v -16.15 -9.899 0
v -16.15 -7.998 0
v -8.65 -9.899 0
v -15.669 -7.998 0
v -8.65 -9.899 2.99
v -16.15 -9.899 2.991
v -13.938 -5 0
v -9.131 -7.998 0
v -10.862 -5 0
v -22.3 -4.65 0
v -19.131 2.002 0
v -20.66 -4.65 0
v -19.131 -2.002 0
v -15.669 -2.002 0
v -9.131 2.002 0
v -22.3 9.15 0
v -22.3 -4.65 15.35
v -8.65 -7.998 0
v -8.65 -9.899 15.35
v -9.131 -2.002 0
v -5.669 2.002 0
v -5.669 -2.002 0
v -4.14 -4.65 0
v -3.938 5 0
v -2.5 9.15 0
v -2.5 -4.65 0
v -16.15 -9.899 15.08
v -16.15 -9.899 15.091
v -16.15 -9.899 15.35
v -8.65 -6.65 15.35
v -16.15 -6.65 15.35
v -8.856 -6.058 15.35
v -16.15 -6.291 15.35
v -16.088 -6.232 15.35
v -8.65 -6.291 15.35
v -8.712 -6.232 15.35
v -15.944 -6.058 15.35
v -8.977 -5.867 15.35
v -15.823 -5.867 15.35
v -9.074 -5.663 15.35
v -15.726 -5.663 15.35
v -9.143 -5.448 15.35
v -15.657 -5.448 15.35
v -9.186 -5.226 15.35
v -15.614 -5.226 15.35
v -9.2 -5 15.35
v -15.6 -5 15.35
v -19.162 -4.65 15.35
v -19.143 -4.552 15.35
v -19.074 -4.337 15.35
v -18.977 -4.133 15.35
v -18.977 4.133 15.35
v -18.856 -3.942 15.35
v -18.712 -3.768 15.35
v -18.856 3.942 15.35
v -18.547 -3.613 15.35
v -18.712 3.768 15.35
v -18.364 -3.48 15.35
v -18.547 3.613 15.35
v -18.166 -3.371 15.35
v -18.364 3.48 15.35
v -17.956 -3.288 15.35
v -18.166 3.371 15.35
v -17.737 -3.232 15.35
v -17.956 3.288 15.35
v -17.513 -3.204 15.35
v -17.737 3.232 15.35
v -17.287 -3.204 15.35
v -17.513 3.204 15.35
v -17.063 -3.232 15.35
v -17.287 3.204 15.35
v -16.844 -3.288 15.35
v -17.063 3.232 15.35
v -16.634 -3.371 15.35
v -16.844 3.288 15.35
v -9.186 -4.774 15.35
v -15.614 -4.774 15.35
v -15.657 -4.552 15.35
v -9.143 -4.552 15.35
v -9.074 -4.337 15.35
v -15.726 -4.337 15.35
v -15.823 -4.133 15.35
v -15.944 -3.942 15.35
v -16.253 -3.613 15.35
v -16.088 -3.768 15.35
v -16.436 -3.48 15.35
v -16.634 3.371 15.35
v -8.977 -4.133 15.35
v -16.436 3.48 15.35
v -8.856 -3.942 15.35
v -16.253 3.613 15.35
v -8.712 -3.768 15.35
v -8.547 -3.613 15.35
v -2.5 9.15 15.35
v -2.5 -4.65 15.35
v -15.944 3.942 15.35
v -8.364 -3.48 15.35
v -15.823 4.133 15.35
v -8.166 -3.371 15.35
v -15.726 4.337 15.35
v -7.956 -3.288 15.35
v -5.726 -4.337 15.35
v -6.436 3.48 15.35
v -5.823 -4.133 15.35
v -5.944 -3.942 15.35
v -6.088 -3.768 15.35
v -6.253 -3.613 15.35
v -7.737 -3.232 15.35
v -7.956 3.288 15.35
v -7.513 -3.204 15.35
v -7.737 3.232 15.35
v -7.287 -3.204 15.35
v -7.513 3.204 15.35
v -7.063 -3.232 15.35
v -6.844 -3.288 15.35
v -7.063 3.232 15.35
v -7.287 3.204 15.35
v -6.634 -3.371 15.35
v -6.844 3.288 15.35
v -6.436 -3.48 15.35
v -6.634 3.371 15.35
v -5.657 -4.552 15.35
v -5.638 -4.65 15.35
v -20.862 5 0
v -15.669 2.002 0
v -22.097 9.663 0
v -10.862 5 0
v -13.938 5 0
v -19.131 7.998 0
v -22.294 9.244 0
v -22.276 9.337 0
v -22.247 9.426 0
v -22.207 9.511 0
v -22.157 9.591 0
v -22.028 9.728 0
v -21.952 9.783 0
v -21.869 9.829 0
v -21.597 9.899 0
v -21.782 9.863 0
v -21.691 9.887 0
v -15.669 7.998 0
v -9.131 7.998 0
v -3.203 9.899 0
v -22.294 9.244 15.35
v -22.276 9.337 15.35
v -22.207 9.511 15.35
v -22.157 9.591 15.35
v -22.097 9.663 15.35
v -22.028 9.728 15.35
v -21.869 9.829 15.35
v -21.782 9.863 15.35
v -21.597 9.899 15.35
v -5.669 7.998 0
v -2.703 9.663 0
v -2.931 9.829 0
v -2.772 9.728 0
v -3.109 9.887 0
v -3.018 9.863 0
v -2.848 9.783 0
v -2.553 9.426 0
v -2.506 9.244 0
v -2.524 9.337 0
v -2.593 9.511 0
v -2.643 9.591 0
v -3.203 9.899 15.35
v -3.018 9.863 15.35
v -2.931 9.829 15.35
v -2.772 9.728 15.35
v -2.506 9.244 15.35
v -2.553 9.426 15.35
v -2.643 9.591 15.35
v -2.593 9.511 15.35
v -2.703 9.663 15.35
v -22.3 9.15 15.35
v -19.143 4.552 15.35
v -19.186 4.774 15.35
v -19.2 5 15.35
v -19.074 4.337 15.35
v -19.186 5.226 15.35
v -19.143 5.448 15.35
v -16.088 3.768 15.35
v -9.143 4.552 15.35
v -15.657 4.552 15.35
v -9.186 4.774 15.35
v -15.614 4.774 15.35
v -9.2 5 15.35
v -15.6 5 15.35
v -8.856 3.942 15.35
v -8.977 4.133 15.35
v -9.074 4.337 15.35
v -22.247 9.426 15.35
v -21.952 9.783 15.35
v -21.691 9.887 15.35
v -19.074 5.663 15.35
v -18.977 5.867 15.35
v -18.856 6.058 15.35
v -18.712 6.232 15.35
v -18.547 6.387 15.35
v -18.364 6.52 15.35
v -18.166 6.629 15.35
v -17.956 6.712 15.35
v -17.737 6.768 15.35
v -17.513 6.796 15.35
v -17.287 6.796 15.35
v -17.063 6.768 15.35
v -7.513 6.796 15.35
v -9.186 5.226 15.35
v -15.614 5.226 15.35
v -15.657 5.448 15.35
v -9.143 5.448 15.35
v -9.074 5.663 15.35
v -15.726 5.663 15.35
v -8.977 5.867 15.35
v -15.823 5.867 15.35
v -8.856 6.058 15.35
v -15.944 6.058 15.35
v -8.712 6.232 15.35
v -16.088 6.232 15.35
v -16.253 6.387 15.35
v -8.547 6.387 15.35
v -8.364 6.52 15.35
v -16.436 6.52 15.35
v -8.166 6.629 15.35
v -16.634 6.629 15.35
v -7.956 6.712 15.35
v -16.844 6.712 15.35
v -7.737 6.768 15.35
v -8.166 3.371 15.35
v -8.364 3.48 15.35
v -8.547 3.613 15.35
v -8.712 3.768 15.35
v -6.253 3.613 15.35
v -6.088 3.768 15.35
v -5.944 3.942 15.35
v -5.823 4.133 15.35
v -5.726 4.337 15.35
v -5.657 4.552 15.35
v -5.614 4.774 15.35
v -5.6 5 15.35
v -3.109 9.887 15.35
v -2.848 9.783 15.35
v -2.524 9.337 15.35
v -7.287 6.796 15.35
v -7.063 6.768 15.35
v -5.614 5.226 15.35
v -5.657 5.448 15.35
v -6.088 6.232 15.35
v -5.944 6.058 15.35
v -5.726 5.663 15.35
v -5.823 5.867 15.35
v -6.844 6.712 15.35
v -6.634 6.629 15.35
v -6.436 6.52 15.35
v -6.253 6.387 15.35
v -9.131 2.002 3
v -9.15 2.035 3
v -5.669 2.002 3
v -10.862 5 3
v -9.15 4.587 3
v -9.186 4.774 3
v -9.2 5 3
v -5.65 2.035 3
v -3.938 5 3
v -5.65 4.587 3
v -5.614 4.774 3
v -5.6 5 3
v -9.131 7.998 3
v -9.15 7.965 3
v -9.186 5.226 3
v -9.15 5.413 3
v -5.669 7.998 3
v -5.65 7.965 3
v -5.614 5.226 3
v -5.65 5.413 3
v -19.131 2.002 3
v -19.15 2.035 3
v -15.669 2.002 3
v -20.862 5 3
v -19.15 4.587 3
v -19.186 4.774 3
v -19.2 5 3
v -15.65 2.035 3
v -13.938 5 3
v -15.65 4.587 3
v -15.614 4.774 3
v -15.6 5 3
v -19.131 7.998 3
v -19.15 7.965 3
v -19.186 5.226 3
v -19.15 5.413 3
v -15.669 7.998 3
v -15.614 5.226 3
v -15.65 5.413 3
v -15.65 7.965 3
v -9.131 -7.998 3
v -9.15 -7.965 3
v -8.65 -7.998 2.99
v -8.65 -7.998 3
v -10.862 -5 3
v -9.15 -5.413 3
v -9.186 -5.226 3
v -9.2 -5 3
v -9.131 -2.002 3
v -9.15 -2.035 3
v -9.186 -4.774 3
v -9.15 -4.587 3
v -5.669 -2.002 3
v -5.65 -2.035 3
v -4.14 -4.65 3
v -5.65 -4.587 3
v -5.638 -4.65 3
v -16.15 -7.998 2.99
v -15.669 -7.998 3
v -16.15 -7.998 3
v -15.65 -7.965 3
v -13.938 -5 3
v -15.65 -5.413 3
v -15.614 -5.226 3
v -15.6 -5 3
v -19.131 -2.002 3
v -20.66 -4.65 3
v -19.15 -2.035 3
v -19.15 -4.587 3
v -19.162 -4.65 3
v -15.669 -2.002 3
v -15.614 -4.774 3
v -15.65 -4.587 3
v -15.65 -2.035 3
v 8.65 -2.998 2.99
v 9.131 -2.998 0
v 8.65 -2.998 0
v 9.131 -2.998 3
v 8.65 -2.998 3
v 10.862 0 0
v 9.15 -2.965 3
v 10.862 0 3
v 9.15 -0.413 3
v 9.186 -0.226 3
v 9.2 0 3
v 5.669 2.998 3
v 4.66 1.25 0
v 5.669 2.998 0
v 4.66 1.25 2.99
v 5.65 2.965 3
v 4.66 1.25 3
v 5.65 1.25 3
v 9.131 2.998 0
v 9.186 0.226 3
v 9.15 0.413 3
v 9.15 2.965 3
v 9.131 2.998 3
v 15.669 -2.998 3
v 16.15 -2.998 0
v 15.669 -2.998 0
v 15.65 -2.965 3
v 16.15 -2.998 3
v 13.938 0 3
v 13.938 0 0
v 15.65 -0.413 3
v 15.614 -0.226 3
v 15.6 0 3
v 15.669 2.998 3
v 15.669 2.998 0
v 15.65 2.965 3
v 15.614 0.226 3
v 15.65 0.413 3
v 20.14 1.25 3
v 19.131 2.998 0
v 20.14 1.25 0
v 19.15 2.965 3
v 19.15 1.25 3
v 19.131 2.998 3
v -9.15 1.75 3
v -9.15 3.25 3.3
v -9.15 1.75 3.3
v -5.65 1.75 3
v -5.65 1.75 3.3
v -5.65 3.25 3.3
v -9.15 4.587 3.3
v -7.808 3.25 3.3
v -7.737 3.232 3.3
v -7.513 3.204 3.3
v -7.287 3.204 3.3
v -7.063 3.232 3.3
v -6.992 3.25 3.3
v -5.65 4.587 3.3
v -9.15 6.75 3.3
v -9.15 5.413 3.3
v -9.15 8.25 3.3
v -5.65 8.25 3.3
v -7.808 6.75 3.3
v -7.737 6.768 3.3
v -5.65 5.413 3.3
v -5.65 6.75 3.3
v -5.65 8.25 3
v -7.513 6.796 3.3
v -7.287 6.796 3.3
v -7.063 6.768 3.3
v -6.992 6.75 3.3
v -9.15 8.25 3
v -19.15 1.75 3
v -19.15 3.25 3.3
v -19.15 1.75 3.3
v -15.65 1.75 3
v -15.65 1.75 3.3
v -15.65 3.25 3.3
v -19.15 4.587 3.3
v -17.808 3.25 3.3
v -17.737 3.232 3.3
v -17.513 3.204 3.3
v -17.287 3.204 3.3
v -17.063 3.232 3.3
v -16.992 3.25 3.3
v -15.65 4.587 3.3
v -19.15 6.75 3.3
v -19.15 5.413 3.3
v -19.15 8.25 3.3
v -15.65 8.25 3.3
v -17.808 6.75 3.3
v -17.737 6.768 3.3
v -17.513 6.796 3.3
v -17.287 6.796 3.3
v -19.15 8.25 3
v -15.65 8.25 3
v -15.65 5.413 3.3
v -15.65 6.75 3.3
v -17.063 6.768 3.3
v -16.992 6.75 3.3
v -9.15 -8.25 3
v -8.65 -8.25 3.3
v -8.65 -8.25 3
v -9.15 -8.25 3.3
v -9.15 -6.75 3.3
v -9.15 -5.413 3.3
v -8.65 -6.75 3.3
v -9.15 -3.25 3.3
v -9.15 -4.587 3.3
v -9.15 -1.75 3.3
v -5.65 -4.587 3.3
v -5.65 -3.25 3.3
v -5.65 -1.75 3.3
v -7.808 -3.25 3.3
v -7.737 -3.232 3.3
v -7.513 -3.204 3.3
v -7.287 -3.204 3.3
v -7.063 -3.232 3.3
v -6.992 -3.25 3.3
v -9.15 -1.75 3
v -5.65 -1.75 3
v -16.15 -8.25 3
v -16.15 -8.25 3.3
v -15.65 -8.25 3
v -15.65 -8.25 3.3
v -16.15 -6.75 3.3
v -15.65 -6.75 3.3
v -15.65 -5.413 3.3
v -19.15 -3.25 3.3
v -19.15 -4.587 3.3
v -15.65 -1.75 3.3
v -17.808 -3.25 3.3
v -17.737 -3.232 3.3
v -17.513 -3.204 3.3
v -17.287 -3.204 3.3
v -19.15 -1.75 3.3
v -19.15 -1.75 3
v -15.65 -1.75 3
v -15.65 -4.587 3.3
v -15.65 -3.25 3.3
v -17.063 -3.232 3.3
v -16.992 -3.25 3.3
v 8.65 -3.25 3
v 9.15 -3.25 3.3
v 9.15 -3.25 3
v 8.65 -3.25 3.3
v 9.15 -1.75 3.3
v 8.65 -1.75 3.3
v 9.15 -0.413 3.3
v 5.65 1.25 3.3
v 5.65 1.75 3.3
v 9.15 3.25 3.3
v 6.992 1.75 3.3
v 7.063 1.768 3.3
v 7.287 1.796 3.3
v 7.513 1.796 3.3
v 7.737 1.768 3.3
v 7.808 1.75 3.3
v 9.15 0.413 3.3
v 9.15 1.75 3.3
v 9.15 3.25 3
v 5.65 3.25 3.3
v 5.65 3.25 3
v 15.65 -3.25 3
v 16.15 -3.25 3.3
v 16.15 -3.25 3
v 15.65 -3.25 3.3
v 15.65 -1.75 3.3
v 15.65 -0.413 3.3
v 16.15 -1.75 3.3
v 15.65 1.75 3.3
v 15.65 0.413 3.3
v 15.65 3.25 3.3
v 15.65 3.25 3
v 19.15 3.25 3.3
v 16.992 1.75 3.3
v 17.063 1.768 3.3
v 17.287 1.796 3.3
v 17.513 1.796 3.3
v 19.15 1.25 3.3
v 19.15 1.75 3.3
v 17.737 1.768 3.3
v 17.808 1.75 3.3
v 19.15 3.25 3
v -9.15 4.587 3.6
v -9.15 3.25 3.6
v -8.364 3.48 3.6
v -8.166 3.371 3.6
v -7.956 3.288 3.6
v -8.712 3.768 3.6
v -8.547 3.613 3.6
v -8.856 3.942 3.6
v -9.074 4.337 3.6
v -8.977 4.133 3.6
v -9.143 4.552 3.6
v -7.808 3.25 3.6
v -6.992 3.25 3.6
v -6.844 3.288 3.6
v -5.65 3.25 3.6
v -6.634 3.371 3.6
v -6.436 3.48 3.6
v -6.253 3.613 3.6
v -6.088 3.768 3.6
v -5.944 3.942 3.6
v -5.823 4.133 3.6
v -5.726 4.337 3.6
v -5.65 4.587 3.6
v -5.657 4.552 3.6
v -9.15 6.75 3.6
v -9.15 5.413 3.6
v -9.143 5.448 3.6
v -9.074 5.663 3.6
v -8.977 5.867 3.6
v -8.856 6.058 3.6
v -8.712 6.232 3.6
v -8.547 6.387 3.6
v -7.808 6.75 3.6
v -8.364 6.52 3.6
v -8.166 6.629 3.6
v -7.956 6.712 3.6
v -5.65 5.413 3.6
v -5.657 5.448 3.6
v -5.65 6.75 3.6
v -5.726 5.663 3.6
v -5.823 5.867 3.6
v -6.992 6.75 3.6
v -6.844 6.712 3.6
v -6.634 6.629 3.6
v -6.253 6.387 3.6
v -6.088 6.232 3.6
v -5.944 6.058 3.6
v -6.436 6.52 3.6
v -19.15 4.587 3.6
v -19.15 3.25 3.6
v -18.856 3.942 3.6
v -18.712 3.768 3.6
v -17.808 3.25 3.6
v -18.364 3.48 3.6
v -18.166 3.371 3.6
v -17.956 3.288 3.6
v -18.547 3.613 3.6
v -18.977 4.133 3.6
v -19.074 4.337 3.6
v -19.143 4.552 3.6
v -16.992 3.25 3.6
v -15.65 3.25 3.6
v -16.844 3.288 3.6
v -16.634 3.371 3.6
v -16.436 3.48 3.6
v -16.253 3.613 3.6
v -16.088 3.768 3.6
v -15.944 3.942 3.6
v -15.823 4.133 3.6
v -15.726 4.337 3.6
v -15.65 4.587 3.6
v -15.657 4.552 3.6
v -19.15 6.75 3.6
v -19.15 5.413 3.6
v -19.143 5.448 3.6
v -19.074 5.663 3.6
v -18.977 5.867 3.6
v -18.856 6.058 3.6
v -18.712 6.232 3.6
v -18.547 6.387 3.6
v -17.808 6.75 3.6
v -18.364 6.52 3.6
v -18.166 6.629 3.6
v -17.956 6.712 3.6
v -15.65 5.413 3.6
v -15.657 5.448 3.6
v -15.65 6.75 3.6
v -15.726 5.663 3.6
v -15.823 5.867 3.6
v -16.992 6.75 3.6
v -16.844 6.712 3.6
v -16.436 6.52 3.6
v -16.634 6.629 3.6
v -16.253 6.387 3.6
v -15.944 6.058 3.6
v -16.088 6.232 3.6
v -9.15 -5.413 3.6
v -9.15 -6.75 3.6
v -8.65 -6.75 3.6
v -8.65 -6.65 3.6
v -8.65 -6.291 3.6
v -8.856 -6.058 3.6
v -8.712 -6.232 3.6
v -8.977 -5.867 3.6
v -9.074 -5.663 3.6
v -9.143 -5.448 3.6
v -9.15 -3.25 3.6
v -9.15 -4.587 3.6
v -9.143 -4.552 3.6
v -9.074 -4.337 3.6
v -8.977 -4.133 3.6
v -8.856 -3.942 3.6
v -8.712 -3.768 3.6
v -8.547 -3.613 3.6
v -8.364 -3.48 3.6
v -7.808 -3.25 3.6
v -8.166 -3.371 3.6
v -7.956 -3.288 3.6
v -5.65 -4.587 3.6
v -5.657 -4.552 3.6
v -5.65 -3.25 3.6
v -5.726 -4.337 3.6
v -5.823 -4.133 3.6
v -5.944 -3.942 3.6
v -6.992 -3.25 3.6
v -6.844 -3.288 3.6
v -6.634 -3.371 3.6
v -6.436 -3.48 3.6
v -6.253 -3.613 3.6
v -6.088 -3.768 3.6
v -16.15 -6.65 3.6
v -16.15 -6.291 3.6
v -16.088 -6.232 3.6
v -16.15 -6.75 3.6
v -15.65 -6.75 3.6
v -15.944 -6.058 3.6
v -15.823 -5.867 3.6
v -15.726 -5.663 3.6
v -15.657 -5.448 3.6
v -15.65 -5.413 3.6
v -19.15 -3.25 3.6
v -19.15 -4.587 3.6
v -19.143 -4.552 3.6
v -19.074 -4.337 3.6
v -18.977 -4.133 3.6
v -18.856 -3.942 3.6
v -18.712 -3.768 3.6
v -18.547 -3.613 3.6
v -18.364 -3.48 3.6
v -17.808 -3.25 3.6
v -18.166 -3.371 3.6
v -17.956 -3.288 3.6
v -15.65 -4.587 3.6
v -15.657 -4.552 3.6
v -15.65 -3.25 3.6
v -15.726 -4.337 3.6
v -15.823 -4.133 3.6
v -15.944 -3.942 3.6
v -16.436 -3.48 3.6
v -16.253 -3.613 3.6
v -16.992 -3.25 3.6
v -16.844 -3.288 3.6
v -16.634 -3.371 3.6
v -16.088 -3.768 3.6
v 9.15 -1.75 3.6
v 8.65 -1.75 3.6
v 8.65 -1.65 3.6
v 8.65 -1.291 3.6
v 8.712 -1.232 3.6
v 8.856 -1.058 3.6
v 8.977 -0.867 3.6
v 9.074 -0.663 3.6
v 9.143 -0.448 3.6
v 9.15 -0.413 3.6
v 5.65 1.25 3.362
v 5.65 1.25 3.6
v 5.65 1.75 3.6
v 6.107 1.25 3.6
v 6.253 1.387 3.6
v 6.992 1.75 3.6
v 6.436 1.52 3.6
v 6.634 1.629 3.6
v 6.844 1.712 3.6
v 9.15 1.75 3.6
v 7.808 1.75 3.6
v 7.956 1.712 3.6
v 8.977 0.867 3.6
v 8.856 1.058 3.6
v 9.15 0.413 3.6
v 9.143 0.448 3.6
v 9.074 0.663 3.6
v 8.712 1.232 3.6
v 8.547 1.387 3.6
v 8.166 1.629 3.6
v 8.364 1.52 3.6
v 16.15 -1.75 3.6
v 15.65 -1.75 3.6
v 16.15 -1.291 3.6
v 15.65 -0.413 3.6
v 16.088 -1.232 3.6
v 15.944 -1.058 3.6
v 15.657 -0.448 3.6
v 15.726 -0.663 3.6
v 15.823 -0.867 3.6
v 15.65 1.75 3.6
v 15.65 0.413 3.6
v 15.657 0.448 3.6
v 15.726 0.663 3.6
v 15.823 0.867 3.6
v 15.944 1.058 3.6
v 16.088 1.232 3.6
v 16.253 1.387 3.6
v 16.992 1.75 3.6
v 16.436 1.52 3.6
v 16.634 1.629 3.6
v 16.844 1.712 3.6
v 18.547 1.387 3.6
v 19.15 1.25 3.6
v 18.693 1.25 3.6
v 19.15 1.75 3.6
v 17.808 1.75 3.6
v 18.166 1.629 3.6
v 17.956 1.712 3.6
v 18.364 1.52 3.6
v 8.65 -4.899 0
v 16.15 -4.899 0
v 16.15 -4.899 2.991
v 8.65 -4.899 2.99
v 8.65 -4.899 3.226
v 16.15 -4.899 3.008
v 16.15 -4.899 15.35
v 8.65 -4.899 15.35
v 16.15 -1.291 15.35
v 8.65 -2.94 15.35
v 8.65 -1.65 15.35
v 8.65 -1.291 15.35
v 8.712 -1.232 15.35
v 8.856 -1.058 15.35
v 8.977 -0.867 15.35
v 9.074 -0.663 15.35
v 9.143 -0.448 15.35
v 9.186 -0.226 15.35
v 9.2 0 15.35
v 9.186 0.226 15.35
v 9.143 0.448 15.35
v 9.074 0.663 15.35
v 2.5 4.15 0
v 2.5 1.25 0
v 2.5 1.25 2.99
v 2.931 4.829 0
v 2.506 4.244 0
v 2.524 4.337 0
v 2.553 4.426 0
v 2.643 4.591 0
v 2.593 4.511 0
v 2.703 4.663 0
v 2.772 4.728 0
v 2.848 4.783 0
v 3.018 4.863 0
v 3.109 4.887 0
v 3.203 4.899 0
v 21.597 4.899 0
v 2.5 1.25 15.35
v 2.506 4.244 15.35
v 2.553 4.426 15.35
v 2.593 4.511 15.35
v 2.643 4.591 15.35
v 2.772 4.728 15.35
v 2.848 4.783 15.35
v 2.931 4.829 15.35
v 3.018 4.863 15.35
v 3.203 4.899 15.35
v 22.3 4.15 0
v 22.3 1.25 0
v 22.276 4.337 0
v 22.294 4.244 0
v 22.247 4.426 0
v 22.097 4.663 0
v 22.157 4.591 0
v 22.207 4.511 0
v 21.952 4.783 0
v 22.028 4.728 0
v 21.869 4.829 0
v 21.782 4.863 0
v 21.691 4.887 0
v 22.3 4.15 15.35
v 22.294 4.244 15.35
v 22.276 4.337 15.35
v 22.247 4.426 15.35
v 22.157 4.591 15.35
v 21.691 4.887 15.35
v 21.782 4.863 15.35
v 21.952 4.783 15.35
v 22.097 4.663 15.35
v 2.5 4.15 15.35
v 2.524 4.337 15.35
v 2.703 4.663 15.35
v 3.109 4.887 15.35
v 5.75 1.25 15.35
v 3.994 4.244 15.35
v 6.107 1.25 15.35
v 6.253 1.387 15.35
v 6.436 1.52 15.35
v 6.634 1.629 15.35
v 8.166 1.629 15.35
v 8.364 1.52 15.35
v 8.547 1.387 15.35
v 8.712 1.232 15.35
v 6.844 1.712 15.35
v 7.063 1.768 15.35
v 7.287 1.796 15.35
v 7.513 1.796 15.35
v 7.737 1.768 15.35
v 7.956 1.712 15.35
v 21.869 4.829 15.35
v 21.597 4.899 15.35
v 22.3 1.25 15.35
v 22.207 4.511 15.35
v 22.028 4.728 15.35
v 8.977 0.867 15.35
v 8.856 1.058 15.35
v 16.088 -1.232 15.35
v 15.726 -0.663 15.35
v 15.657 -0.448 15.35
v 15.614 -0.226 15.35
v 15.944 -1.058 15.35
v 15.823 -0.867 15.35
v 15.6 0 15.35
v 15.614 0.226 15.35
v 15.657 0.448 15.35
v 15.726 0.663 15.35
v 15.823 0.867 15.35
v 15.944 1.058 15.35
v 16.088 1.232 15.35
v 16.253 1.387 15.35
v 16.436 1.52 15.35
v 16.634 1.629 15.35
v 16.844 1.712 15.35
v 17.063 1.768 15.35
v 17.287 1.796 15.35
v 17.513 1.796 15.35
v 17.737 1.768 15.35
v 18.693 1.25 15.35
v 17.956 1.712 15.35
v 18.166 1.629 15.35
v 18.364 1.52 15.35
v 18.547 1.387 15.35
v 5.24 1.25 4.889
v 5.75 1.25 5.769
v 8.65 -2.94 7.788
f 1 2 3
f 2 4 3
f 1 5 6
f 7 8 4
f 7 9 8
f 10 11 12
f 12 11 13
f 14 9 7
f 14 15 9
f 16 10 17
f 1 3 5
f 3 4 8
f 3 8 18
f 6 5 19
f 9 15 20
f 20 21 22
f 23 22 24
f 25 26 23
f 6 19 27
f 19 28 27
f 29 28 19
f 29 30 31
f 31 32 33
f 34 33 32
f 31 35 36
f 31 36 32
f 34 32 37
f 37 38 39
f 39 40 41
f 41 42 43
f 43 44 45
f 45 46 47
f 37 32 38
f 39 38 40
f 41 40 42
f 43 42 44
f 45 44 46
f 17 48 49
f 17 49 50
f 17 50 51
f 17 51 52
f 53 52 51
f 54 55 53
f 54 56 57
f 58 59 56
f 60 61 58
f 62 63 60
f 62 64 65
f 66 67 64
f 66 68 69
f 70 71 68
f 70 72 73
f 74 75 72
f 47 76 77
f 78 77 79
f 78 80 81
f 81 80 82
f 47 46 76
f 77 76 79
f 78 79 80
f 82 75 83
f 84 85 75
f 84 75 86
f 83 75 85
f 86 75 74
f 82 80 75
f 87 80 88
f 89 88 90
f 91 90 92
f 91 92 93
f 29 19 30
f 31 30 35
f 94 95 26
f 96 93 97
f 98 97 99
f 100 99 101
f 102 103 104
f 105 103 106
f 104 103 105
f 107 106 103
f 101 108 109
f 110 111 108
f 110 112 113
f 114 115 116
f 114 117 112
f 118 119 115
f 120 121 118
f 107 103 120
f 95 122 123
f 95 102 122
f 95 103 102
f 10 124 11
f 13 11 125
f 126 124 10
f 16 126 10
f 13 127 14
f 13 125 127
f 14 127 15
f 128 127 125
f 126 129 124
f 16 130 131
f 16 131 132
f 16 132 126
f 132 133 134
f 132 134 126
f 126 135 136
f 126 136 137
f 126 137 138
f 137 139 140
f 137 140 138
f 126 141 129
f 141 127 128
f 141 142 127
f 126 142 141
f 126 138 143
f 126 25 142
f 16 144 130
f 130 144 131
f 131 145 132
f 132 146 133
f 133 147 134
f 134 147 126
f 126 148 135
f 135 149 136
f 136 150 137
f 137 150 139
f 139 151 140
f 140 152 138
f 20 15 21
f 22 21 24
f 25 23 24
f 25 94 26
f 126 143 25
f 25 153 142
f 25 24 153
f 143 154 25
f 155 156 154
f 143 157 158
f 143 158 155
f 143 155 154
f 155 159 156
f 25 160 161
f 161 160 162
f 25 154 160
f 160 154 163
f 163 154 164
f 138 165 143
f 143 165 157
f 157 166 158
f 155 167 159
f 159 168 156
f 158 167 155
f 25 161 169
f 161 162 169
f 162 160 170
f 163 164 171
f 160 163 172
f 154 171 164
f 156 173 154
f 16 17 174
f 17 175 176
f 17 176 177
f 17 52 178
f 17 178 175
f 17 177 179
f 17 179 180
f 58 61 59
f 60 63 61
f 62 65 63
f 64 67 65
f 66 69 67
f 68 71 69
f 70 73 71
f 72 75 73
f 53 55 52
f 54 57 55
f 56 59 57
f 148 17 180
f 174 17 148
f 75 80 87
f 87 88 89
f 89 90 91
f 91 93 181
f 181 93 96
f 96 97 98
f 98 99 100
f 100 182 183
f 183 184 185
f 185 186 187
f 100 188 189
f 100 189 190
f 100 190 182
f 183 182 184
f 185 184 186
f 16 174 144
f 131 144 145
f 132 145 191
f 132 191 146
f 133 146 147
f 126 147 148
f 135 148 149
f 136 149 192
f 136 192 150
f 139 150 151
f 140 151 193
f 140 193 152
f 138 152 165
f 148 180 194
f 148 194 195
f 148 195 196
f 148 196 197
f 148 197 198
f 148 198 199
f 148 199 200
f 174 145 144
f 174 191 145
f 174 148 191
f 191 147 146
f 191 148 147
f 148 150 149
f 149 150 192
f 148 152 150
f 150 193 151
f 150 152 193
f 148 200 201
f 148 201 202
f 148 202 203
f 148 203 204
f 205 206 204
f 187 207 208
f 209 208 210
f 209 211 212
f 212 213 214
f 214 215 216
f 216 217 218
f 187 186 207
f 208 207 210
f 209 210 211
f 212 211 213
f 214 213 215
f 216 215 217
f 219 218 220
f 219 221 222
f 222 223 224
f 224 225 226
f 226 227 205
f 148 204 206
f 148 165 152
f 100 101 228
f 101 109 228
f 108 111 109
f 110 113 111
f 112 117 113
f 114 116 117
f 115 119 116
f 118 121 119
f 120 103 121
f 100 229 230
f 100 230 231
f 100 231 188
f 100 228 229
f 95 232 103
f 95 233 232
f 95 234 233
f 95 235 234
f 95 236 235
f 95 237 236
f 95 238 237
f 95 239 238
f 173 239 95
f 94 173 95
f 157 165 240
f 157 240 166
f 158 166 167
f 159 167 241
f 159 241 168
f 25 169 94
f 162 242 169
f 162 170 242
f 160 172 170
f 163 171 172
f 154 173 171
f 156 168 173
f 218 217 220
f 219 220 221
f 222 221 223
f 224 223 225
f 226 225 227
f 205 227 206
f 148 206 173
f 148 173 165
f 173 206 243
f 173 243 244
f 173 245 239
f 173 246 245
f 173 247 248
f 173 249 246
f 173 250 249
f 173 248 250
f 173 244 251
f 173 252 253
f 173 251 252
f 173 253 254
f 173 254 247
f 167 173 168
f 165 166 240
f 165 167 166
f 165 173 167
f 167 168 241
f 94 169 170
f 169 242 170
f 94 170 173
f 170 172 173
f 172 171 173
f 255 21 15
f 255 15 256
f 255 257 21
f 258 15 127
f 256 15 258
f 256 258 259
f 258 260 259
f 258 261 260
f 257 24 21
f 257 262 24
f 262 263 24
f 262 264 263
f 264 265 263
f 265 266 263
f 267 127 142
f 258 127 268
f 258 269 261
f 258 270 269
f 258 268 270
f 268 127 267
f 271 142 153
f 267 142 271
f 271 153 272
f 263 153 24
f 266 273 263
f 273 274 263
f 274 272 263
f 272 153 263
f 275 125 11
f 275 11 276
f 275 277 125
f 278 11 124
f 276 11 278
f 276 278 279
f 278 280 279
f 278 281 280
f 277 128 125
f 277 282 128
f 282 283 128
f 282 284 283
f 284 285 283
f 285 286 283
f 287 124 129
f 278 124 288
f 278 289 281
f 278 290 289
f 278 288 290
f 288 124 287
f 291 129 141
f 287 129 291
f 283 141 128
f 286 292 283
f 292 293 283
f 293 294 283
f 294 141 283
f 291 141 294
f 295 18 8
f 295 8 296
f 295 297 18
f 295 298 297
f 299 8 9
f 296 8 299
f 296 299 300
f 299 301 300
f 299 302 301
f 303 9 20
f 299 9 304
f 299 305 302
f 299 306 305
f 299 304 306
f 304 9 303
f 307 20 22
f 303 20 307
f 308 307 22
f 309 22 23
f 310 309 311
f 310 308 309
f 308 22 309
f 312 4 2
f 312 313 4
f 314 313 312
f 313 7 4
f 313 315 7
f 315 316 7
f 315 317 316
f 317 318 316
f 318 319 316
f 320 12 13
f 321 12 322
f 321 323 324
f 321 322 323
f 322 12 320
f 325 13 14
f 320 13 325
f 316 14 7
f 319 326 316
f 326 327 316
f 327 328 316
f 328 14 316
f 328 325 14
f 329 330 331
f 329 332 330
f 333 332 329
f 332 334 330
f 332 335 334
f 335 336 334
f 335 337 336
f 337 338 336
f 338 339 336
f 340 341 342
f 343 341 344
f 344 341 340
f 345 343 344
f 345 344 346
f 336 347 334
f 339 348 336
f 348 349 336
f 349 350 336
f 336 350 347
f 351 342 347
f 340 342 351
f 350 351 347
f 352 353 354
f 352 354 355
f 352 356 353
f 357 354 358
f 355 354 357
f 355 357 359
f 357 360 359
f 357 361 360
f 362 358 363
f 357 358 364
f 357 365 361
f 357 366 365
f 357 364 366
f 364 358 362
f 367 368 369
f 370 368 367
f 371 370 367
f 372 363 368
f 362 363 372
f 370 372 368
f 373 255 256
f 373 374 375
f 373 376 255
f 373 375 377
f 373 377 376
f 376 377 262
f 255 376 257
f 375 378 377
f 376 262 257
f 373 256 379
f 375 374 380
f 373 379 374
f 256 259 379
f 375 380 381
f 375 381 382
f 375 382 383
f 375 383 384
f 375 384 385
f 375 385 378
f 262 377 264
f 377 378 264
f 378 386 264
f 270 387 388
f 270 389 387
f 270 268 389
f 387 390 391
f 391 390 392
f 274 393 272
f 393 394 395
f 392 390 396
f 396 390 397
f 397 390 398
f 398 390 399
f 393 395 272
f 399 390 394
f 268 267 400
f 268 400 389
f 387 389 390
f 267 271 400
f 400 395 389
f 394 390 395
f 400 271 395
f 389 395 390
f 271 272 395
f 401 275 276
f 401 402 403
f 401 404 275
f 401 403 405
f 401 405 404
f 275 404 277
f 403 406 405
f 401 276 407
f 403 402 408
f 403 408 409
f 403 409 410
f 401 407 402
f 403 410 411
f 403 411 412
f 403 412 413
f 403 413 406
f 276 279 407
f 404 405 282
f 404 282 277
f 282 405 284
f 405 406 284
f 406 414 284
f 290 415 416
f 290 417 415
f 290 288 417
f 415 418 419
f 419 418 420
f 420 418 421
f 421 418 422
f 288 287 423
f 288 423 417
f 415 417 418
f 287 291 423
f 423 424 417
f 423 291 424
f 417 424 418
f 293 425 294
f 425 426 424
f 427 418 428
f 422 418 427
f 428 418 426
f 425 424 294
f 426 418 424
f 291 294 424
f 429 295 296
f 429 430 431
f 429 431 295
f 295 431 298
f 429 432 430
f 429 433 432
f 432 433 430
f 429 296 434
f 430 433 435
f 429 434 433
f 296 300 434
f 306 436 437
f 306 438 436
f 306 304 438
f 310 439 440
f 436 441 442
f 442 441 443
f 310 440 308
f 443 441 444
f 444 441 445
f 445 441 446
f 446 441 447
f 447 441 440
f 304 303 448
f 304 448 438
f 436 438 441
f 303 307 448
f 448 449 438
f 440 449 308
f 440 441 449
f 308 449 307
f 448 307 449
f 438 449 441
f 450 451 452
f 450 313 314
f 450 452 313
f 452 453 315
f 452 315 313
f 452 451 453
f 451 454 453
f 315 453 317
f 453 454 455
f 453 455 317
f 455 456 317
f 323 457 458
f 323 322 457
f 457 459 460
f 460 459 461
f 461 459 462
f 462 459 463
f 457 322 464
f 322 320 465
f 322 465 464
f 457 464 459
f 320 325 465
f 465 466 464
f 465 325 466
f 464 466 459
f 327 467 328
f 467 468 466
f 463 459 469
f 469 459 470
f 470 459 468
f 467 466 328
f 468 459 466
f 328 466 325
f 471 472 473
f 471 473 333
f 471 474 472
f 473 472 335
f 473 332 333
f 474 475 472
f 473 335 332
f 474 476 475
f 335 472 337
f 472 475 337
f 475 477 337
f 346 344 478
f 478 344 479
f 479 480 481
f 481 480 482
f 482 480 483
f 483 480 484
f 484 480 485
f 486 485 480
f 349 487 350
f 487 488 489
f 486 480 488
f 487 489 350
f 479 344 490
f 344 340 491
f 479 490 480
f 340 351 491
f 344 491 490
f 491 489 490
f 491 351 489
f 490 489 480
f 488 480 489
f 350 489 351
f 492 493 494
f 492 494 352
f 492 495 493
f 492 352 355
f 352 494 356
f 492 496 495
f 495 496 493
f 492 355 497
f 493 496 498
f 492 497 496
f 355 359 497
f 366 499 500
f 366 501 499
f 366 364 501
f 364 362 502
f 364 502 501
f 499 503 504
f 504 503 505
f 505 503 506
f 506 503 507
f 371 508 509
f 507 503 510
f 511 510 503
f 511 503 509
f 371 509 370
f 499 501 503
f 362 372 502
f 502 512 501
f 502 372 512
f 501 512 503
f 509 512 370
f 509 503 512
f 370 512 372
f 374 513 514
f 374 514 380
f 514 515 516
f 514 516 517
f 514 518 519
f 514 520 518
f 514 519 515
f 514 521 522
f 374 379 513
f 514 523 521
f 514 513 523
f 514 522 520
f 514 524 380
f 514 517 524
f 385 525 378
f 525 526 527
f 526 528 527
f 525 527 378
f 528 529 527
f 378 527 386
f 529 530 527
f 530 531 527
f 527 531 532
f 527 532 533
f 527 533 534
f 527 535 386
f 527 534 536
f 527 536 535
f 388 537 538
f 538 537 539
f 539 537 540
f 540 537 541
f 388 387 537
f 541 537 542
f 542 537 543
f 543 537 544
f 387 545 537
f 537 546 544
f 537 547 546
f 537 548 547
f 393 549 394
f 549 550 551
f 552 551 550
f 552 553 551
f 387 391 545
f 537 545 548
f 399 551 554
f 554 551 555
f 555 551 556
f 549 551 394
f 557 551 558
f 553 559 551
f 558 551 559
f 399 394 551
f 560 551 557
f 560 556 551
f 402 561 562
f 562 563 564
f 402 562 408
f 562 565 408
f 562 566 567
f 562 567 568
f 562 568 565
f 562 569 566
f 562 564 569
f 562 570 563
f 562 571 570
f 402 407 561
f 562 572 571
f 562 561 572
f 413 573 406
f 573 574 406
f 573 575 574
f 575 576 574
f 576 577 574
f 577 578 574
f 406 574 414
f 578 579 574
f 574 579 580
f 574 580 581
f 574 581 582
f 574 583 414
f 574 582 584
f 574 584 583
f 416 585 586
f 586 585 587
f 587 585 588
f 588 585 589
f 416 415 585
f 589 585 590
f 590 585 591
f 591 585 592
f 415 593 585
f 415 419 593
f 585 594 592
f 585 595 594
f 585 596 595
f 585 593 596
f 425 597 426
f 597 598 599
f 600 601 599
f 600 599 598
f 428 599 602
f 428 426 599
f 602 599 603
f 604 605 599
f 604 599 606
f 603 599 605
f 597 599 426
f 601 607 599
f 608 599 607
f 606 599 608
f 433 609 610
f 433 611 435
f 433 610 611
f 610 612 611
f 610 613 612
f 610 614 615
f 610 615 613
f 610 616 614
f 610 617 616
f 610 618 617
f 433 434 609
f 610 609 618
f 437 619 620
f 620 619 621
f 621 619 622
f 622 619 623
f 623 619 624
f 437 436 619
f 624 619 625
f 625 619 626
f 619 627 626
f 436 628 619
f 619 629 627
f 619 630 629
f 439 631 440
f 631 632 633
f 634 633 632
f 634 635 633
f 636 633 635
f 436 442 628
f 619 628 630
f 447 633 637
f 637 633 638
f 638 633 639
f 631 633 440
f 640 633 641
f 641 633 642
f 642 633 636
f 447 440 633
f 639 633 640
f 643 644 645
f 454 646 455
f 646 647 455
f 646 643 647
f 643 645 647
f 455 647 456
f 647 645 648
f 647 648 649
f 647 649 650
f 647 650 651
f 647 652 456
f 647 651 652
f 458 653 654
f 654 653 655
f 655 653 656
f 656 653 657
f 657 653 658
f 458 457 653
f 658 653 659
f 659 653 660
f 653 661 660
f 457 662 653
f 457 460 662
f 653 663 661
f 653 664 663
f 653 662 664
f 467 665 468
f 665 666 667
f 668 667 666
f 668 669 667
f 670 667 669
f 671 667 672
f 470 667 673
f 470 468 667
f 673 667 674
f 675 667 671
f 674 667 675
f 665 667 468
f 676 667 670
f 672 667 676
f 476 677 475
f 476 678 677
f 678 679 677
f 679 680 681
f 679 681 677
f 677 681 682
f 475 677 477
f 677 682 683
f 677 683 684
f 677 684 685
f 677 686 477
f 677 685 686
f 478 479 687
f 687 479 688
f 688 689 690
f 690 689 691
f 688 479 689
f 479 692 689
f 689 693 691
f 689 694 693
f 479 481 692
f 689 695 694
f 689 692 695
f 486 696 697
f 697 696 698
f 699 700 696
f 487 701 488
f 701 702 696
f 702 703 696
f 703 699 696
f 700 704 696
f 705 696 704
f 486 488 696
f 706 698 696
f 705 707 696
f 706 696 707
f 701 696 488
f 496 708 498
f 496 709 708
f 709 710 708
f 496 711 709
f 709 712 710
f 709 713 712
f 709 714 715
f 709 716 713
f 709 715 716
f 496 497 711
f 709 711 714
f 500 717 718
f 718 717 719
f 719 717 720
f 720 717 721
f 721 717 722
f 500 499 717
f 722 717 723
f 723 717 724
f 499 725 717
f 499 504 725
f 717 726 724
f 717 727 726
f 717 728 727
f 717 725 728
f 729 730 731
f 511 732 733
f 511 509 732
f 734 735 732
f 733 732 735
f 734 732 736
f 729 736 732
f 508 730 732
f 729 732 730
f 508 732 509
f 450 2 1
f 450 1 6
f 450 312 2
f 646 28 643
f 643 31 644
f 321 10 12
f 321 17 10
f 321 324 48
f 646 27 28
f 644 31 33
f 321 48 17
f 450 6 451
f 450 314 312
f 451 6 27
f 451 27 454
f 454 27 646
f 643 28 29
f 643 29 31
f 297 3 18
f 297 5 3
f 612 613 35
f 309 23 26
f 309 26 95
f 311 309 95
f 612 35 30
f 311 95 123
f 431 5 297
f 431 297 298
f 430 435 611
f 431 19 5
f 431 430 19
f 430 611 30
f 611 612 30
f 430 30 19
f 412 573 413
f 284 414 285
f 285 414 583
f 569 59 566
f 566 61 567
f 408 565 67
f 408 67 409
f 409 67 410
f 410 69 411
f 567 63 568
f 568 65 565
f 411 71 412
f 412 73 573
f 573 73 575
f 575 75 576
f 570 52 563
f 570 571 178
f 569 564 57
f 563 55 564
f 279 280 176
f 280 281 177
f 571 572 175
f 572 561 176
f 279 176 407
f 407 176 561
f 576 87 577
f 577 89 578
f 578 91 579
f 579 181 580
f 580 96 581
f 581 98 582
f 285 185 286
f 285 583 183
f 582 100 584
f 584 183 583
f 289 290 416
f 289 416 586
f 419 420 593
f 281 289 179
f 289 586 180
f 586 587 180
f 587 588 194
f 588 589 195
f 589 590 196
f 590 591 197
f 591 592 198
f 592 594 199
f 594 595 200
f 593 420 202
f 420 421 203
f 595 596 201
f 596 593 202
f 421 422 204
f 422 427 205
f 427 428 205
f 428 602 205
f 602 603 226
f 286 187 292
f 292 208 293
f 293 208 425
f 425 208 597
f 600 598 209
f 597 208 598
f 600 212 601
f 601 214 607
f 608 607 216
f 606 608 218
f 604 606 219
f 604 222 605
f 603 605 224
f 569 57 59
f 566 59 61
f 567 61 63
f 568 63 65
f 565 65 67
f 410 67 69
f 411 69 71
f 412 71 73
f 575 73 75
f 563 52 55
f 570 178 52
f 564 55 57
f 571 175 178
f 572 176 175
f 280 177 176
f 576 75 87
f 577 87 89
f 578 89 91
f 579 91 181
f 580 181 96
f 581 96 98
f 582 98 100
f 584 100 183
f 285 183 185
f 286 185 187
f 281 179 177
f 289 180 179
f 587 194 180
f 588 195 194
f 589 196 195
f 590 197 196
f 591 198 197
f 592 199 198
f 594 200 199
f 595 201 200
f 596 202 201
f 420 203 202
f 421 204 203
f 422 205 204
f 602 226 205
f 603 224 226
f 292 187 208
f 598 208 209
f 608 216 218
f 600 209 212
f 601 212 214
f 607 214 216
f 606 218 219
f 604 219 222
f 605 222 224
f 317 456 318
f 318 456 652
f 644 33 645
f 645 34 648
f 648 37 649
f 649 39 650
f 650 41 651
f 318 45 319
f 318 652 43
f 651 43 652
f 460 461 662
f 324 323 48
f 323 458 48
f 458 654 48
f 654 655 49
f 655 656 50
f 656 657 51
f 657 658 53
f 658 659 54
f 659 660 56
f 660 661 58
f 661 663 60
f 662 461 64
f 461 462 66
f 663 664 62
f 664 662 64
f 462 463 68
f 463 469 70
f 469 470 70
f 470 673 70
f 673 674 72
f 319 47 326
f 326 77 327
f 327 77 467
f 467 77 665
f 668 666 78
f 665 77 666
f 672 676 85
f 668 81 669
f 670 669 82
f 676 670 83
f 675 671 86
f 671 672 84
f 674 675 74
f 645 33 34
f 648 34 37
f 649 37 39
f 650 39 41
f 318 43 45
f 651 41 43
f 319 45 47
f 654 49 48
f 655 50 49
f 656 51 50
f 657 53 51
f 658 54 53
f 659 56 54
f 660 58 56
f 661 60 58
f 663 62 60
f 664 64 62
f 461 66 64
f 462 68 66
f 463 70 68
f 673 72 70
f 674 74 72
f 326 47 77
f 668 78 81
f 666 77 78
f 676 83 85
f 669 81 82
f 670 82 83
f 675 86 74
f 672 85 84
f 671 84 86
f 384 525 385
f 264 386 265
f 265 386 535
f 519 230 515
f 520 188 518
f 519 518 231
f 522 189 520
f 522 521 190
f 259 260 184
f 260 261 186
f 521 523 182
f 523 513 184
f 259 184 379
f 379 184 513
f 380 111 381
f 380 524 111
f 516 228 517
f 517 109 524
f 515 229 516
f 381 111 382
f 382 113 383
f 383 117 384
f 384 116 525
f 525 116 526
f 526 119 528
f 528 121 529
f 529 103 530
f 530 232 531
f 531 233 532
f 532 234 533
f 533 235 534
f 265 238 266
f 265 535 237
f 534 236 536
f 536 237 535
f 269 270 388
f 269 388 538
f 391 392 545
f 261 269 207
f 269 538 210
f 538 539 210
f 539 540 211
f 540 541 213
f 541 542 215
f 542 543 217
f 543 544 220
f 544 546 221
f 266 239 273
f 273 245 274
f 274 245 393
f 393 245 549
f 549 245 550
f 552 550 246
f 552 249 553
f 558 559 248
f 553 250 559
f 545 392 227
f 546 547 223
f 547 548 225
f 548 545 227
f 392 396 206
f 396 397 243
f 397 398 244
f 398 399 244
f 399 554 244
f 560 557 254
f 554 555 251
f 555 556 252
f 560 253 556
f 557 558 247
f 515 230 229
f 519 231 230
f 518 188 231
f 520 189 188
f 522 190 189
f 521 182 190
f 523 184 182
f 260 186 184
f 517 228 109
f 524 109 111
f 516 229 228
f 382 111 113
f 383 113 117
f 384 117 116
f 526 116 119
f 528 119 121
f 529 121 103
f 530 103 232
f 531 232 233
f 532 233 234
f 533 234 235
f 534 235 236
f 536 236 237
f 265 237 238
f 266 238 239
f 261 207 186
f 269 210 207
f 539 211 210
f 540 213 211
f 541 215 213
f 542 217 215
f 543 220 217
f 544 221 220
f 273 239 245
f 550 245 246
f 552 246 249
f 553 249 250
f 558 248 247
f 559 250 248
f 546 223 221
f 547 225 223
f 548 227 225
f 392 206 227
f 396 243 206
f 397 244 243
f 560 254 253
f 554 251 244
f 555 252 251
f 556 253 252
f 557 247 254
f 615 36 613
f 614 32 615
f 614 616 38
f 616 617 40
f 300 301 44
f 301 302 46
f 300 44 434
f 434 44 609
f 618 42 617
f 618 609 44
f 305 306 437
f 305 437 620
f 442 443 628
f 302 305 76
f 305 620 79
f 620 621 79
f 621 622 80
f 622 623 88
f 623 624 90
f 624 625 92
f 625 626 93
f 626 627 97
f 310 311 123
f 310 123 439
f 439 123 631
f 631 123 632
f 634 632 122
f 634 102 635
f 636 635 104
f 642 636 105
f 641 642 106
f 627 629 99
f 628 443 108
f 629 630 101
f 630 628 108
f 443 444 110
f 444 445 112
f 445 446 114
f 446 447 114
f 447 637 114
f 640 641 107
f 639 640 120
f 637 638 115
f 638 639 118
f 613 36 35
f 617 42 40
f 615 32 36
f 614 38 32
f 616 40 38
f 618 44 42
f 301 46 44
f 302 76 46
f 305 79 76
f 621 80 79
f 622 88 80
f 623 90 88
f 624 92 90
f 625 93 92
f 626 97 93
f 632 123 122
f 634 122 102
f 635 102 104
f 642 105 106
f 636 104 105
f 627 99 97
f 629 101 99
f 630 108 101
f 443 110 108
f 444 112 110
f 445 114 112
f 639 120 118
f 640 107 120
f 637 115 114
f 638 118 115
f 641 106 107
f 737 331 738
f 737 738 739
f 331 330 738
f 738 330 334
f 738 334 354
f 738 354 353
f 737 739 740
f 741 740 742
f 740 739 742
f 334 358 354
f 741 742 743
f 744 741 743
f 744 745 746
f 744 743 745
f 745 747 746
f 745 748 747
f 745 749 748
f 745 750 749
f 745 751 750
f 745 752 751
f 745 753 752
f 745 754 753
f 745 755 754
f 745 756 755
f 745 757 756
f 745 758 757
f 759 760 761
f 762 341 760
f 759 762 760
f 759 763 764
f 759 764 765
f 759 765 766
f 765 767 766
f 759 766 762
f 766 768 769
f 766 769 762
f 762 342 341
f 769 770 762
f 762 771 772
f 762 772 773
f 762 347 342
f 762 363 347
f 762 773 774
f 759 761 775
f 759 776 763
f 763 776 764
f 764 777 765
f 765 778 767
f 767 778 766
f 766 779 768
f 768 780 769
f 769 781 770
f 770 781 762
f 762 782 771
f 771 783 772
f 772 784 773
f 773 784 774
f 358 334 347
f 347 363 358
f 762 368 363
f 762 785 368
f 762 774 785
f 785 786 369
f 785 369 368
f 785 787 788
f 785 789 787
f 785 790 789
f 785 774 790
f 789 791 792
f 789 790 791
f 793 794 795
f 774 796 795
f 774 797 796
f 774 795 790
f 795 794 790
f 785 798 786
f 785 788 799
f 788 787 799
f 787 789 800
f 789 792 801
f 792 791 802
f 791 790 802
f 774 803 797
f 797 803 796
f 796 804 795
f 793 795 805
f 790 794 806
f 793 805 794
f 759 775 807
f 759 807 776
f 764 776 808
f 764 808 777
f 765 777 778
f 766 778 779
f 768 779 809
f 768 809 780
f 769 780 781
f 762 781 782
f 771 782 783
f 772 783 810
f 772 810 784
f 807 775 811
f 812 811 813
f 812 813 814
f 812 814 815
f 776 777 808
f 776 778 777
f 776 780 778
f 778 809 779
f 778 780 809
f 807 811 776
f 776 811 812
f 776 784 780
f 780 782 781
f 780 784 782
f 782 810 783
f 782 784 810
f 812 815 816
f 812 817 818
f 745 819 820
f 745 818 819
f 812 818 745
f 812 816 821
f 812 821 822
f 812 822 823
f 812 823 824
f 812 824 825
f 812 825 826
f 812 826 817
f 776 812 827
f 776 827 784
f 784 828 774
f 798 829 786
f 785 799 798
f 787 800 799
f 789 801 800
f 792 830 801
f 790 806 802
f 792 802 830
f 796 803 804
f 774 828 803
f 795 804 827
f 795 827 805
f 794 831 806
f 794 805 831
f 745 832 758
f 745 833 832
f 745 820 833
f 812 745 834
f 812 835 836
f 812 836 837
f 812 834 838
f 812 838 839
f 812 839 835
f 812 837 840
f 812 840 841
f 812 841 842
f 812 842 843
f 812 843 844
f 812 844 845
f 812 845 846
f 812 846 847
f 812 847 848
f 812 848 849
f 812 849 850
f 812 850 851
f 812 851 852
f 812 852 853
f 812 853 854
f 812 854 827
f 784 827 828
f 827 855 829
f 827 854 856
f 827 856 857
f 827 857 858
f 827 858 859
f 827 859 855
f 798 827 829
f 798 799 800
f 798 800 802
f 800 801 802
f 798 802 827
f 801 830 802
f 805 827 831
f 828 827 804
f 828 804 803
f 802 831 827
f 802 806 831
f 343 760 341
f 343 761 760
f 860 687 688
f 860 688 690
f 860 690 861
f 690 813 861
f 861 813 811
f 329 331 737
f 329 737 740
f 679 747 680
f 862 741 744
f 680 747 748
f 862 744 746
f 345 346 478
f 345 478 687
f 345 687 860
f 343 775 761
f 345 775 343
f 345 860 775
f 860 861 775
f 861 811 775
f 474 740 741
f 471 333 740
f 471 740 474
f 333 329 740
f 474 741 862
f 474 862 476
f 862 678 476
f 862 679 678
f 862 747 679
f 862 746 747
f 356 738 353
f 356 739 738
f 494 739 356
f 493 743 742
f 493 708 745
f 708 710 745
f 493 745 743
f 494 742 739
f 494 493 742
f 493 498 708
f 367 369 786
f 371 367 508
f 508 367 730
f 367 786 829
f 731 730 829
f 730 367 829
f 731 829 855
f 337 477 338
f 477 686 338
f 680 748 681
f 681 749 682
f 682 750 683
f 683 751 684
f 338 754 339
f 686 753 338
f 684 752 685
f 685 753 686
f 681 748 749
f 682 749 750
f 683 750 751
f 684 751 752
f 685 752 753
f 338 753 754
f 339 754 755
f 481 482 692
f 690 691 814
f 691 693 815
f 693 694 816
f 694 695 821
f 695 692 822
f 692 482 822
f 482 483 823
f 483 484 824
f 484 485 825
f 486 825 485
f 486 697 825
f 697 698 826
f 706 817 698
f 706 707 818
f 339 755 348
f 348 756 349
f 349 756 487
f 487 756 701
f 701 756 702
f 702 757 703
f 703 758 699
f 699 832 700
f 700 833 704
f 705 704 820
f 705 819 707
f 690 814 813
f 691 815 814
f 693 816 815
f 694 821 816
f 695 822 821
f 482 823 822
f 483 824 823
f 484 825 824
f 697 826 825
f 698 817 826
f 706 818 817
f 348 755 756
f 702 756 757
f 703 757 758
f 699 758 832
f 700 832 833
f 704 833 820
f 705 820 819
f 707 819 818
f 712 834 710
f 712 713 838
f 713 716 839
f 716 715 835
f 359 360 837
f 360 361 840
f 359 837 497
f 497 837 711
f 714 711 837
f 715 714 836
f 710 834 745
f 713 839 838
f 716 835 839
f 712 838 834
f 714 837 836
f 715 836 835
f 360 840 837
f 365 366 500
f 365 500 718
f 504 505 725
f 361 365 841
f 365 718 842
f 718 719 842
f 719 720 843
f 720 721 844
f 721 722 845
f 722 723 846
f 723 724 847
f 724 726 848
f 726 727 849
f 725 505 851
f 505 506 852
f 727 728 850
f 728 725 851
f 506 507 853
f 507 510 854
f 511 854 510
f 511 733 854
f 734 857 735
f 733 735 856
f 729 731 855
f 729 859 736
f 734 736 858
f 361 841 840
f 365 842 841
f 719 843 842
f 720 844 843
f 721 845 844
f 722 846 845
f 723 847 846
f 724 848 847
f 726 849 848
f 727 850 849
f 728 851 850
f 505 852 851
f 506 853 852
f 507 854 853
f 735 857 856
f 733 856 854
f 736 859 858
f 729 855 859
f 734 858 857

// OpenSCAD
$fn = 50;

difference() {
	union() {
		translate(v = [-12.4, 0, 0]) {
			rotate(a = [0, 0, 0]) {
				difference() {
					union() {
						hull() {
							translate(v = [-9.15, 9.15, 0]) {
								cylinder(h = 15.35, r = 0.75);
							}
							translate(v = [9.15, 9.15, 0]) {
								cylinder(h = 15.35, r = 0.75);
							}
							translate(v = [-9.15, -9.15, 0]) {
								cylinder(h = 15.35, r = 0.75);
							}
							translate(v = [9.15, -9.15, 0]) {
								cylinder(h = 15.35, r = 0.75);
							}
						}
					}
					union() {
						translate(v = [-5.0, 5.0, 3.0]) {
							rotate(a = [180, 0, 0]) {
								difference() {
									union() {
										linear_extrude(height = 53.0) {
											polygon(points = [[3.4619999999999997, 0.0], [1.7310000000000003, 2.9981799479017264], [-1.7309999999999992, 2.9981799479017264], [-3.4619999999999997, 4.2397272186481365e-16], [-1.7310000000000014, -2.998179947901726], [1.7309999999999977, -2.9981799479017277]]);
										}
										translate(v = [-1.75, -3.25, -0.3]) {
											cube(size = [3.5, 6.5, 0.3]);
										}
										translate(v = [-1.75, -1.75, -0.6]) {
											cube(size = [3.5, 3.5, 0.3]);
										}
										translate(v = [-1.75, -3.25, 53.0]) {
											cube(size = [3.5, 6.5, 0.3]);
										}
										translate(v = [-1.75, -1.75, 53.3]) {
											cube(size = [3.5, 3.5, 0.3]);
										}
									}
									union();
								}
							}
						}
						translate(v = [-5.0, -5.0, 3.0]) {
							rotate(a = [180, 0, 0]) {
								difference() {
									union() {
										linear_extrude(height = 53.0) {
											polygon(points = [[3.4619999999999997, 0.0], [1.7310000000000003, 2.9981799479017264], [-1.7309999999999992, 2.9981799479017264], [-3.4619999999999997, 4.2397272186481365e-16], [-1.7310000000000014, -2.998179947901726], [1.7309999999999977, -2.9981799479017277]]);
										}
										translate(v = [-1.75, -3.25, -0.3]) {
											cube(size = [3.5, 6.5, 0.3]);
										}
										translate(v = [-1.75, -1.75, -0.6]) {
											cube(size = [3.5, 3.5, 0.3]);
										}
										translate(v = [-1.75, -3.25, 53.0]) {
											cube(size = [3.5, 6.5, 0.3]);
										}
										translate(v = [-1.75, -1.75, 53.3]) {
											cube(size = [3.5, 3.5, 0.3]);
										}
									}
									union();
								}
							}
						}
						translate(v = [5.0, 5.0, 3.0]) {
							rotate(a = [180, 0, 0]) {
								difference() {
									union() {
										linear_extrude(height = 53.0) {
											polygon(points = [[3.4619999999999997, 0.0], [1.7310000000000003, 2.9981799479017264], [-1.7309999999999992, 2.9981799479017264], [-3.4619999999999997, 4.2397272186481365e-16], [-1.7310000000000014, -2.998179947901726], [1.7309999999999977, -2.9981799479017277]]);
										}
										translate(v = [-1.75, -3.25, -0.3]) {
											cube(size = [3.5, 6.5, 0.3]);
										}
										translate(v = [-1.75, -1.75, -0.6]) {
											cube(size = [3.5, 3.5, 0.3]);
										}
										translate(v = [-1.75, -3.25, 53.0]) {
											cube(size = [3.5, 6.5, 0.3]);
										}
										translate(v = [-1.75, -1.75, 53.3]) {
											cube(size = [3.5, 3.5, 0.3]);
										}
									}
									union();
								}
							}
						}
						translate(v = [5.0, -5.0, 3.0]) {
							rotate(a = [180, 0, 0]) {
								difference() {
									union() {
										linear_extrude(height = 53.0) {
											polygon(points = [[3.4619999999999997, 0.0], [1.7310000000000003, 2.9981799479017264], [-1.7309999999999992, 2.9981799479017264], [-3.4619999999999997, 4.2397272186481365e-16], [-1.7310000000000014, -2.998179947901726], [1.7309999999999977, -2.9981799479017277]]);
										}
										translate(v = [-1.75, -3.25, -0.3]) {
											cube(size = [3.5, 6.5, 0.3]);
										}
										translate(v = [-1.75, -1.75, -0.6]) {
											cube(size = [3.5, 3.5, 0.3]);
										}
										translate(v = [-1.75, -3.25, 53.0]) {
											cube(size = [3.5, 6.5, 0.3]);
										}
										translate(v = [-1.75, -1.75, 53.3]) {
											cube(size = [3.5, 3.5, 0.3]);
										}
									}
									union();
								}
							}
						}
						translate(v = [-10.0, -10.0, -0.01]) {
							cube(size = [3.25, 5.35, 15.459999999999999]);
						}
						translate(v = [-10.0, -10.0, -0.01]) {
							cube(size = [6.25, 5.35, 15.459999999999999]);
						}
						translate(v = [-10.0, -10.0, 2.99]) {
							cube(size = [3.25, 3.3499999999999996, 12.459999999999999]);
						}
						translate(v = [-10.0, -10.0, 2.99]) {
							cube(size = [6.25, 3.3499999999999996, 12.459999999999999]);
						}
						translate(v = [3.75, -10.0, -0.01]) {
							cube(size = [6.25, 5.35, 15.459999999999999]);
						}
						translate(v = [3.75, -10.0, 2.99]) {
							cube(size = [6.25, 3.3499999999999996, 12.459999999999999]);
						}
						translate(v = [6.75, -10.0, -0.01]) {
							cube(size = [3.25, 5.35, 15.459999999999999]);
						}
						translate(v = [6.75, -10.0, 2.99]) {
							cube(size = [3.25, 3.3499999999999996, 12.459999999999999]);
						}
						translate(v = [-5.0, 5.0, -0.2]) {
							cylinder(h = 15.75, r = 1.8);
						}
						translate(v = [-5.0, -5.0, -0.2]) {
							cylinder(h = 15.75, r = 1.8);
						}
						translate(v = [5.0, 5.0, -0.2]) {
							cylinder(h = 15.75, r = 1.8);
						}
						translate(v = [5.0, -5.0, -0.2]) {
							cylinder(h = 15.75, r = 1.8);
						}
					}
				}
			}
		}
		translate(v = [12.4, 0, 0]) {
			rotate(a = [0, 0, 0]) {
				difference() {
					union() {
						hull() {
							translate(v = [-9.15, 4.15, 0]) {
								cylinder(h = 15.35, r = 0.75);
							}
							translate(v = [9.15, 4.15, 0]) {
								cylinder(h = 15.35, r = 0.75);
							}
							translate(v = [-9.15, -4.15, 0]) {
								cylinder(h = 15.35, r = 0.75);
							}
							translate(v = [9.15, -4.15, 0]) {
								cylinder(h = 15.35, r = 0.75);
							}
						}
					}
					union() {
						translate(v = [-5.0, 0, 3.0]) {
							rotate(a = [180, 0, 0]) {
								difference() {
									union() {
										linear_extrude(height = 53.0) {
											polygon(points = [[3.4619999999999997, 0.0], [1.7310000000000003, 2.9981799479017264], [-1.7309999999999992, 2.9981799479017264], [-3.4619999999999997, 4.2397272186481365e-16], [-1.7310000000000014, -2.998179947901726], [1.7309999999999977, -2.9981799479017277]]);
										}
										translate(v = [-1.75, -3.25, -0.3]) {
											cube(size = [3.5, 6.5, 0.3]);
										}
										translate(v = [-1.75, -1.75, -0.6]) {
											cube(size = [3.5, 3.5, 0.3]);
										}
										translate(v = [-1.75, -3.25, 53.0]) {
											cube(size = [3.5, 6.5, 0.3]);
										}
										translate(v = [-1.75, -1.75, 53.3]) {
											cube(size = [3.5, 3.5, 0.3]);
										}
									}
									union();
								}
							}
						}
						translate(v = [5.0, 0, 3.0]) {
							rotate(a = [180, 0, 0]) {
								difference() {
									union() {
										linear_extrude(height = 53.0) {
											polygon(points = [[3.4619999999999997, 0.0], [1.7310000000000003, 2.9981799479017264], [-1.7309999999999992, 2.9981799479017264], [-3.4619999999999997, 4.2397272186481365e-16], [-1.7310000000000014, -2.998179947901726], [1.7309999999999977, -2.9981799479017277]]);
										}
										translate(v = [-1.75, -3.25, -0.3]) {
											cube(size = [3.5, 6.5, 0.3]);
										}
										translate(v = [-1.75, -1.75, -0.6]) {
											cube(size = [3.5, 3.5, 0.3]);
										}
										translate(v = [-1.75, -3.25, 53.0]) {
											cube(size = [3.5, 6.5, 0.3]);
										}
										translate(v = [-1.75, -1.75, 53.3]) {
											cube(size = [3.5, 3.5, 0.3]);
										}
									}
									union();
								}
							}
						}
						translate(v = [-10.0, -5.0, -0.01]) {
							cube(size = [3.25, 5.35, 15.459999999999999]);
						}
						translate(v = [-10.0, -5.0, -0.01]) {
							cube(size = [5.35, 3.25, 15.459999999999999]);
						}
						translate(v = [-10.0, -5.0, -0.01]) {
							cube(size = [5.35, 6.25, 15.459999999999999]);
						}
						translate(v = [-10.0, -5.0, -0.01]) {
							cube(size = [6.25, 5.35, 15.459999999999999]);
						}
						translate(v = [-10.0, -5.0, 2.99]) {
							cube(size = [3.25, 3.35, 12.459999999999999]);
						}
						translate(v = [-10.0, -5.0, 2.99]) {
							cube(size = [3.3499999999999996, 3.25, 12.459999999999999]);
						}
						translate(v = [-10.0, -5.0, 2.99]) {
							cube(size = [3.3499999999999996, 6.25, 12.459999999999999]);
						}
						translate(v = [-10.0, -5.0, 2.99]) {
							cube(size = [6.25, 3.35, 12.459999999999999]);
						}
						translate(v = [3.75, -5.0, -0.01]) {
							cube(size = [6.25, 5.35, 15.459999999999999]);
						}
						translate(v = [3.75, -5.0, 2.99]) {
							cube(size = [6.25, 3.35, 12.459999999999999]);
						}
						translate(v = [4.65, -5.0, -0.01]) {
							cube(size = [5.35, 3.25, 15.459999999999999]);
						}
						translate(v = [4.65, -5.0, -0.01]) {
							cube(size = [5.35, 6.25, 15.459999999999999]);
						}
						translate(v = [6.65, -5.0, 2.99]) {
							cube(size = [3.3499999999999996, 3.25, 12.459999999999999]);
						}
						translate(v = [6.65, -5.0, 2.99]) {
							cube(size = [3.3499999999999996, 6.25, 12.459999999999999]);
						}
						translate(v = [6.75, -5.0, -0.01]) {
							cube(size = [3.25, 5.35, 15.459999999999999]);
						}
						translate(v = [6.75, -5.0, 2.99]) {
							cube(size = [3.25, 3.35, 12.459999999999999]);
						}
						translate(v = [-5.0, 0, -0.2]) {
							cylinder(h = 15.75, r = 1.8);
						}
						translate(v = [5.0, 0, -0.2]) {
							cylinder(h = 15.75, r = 1.8);
						}
					}
				}
			}
		}
	}
	union();
}
